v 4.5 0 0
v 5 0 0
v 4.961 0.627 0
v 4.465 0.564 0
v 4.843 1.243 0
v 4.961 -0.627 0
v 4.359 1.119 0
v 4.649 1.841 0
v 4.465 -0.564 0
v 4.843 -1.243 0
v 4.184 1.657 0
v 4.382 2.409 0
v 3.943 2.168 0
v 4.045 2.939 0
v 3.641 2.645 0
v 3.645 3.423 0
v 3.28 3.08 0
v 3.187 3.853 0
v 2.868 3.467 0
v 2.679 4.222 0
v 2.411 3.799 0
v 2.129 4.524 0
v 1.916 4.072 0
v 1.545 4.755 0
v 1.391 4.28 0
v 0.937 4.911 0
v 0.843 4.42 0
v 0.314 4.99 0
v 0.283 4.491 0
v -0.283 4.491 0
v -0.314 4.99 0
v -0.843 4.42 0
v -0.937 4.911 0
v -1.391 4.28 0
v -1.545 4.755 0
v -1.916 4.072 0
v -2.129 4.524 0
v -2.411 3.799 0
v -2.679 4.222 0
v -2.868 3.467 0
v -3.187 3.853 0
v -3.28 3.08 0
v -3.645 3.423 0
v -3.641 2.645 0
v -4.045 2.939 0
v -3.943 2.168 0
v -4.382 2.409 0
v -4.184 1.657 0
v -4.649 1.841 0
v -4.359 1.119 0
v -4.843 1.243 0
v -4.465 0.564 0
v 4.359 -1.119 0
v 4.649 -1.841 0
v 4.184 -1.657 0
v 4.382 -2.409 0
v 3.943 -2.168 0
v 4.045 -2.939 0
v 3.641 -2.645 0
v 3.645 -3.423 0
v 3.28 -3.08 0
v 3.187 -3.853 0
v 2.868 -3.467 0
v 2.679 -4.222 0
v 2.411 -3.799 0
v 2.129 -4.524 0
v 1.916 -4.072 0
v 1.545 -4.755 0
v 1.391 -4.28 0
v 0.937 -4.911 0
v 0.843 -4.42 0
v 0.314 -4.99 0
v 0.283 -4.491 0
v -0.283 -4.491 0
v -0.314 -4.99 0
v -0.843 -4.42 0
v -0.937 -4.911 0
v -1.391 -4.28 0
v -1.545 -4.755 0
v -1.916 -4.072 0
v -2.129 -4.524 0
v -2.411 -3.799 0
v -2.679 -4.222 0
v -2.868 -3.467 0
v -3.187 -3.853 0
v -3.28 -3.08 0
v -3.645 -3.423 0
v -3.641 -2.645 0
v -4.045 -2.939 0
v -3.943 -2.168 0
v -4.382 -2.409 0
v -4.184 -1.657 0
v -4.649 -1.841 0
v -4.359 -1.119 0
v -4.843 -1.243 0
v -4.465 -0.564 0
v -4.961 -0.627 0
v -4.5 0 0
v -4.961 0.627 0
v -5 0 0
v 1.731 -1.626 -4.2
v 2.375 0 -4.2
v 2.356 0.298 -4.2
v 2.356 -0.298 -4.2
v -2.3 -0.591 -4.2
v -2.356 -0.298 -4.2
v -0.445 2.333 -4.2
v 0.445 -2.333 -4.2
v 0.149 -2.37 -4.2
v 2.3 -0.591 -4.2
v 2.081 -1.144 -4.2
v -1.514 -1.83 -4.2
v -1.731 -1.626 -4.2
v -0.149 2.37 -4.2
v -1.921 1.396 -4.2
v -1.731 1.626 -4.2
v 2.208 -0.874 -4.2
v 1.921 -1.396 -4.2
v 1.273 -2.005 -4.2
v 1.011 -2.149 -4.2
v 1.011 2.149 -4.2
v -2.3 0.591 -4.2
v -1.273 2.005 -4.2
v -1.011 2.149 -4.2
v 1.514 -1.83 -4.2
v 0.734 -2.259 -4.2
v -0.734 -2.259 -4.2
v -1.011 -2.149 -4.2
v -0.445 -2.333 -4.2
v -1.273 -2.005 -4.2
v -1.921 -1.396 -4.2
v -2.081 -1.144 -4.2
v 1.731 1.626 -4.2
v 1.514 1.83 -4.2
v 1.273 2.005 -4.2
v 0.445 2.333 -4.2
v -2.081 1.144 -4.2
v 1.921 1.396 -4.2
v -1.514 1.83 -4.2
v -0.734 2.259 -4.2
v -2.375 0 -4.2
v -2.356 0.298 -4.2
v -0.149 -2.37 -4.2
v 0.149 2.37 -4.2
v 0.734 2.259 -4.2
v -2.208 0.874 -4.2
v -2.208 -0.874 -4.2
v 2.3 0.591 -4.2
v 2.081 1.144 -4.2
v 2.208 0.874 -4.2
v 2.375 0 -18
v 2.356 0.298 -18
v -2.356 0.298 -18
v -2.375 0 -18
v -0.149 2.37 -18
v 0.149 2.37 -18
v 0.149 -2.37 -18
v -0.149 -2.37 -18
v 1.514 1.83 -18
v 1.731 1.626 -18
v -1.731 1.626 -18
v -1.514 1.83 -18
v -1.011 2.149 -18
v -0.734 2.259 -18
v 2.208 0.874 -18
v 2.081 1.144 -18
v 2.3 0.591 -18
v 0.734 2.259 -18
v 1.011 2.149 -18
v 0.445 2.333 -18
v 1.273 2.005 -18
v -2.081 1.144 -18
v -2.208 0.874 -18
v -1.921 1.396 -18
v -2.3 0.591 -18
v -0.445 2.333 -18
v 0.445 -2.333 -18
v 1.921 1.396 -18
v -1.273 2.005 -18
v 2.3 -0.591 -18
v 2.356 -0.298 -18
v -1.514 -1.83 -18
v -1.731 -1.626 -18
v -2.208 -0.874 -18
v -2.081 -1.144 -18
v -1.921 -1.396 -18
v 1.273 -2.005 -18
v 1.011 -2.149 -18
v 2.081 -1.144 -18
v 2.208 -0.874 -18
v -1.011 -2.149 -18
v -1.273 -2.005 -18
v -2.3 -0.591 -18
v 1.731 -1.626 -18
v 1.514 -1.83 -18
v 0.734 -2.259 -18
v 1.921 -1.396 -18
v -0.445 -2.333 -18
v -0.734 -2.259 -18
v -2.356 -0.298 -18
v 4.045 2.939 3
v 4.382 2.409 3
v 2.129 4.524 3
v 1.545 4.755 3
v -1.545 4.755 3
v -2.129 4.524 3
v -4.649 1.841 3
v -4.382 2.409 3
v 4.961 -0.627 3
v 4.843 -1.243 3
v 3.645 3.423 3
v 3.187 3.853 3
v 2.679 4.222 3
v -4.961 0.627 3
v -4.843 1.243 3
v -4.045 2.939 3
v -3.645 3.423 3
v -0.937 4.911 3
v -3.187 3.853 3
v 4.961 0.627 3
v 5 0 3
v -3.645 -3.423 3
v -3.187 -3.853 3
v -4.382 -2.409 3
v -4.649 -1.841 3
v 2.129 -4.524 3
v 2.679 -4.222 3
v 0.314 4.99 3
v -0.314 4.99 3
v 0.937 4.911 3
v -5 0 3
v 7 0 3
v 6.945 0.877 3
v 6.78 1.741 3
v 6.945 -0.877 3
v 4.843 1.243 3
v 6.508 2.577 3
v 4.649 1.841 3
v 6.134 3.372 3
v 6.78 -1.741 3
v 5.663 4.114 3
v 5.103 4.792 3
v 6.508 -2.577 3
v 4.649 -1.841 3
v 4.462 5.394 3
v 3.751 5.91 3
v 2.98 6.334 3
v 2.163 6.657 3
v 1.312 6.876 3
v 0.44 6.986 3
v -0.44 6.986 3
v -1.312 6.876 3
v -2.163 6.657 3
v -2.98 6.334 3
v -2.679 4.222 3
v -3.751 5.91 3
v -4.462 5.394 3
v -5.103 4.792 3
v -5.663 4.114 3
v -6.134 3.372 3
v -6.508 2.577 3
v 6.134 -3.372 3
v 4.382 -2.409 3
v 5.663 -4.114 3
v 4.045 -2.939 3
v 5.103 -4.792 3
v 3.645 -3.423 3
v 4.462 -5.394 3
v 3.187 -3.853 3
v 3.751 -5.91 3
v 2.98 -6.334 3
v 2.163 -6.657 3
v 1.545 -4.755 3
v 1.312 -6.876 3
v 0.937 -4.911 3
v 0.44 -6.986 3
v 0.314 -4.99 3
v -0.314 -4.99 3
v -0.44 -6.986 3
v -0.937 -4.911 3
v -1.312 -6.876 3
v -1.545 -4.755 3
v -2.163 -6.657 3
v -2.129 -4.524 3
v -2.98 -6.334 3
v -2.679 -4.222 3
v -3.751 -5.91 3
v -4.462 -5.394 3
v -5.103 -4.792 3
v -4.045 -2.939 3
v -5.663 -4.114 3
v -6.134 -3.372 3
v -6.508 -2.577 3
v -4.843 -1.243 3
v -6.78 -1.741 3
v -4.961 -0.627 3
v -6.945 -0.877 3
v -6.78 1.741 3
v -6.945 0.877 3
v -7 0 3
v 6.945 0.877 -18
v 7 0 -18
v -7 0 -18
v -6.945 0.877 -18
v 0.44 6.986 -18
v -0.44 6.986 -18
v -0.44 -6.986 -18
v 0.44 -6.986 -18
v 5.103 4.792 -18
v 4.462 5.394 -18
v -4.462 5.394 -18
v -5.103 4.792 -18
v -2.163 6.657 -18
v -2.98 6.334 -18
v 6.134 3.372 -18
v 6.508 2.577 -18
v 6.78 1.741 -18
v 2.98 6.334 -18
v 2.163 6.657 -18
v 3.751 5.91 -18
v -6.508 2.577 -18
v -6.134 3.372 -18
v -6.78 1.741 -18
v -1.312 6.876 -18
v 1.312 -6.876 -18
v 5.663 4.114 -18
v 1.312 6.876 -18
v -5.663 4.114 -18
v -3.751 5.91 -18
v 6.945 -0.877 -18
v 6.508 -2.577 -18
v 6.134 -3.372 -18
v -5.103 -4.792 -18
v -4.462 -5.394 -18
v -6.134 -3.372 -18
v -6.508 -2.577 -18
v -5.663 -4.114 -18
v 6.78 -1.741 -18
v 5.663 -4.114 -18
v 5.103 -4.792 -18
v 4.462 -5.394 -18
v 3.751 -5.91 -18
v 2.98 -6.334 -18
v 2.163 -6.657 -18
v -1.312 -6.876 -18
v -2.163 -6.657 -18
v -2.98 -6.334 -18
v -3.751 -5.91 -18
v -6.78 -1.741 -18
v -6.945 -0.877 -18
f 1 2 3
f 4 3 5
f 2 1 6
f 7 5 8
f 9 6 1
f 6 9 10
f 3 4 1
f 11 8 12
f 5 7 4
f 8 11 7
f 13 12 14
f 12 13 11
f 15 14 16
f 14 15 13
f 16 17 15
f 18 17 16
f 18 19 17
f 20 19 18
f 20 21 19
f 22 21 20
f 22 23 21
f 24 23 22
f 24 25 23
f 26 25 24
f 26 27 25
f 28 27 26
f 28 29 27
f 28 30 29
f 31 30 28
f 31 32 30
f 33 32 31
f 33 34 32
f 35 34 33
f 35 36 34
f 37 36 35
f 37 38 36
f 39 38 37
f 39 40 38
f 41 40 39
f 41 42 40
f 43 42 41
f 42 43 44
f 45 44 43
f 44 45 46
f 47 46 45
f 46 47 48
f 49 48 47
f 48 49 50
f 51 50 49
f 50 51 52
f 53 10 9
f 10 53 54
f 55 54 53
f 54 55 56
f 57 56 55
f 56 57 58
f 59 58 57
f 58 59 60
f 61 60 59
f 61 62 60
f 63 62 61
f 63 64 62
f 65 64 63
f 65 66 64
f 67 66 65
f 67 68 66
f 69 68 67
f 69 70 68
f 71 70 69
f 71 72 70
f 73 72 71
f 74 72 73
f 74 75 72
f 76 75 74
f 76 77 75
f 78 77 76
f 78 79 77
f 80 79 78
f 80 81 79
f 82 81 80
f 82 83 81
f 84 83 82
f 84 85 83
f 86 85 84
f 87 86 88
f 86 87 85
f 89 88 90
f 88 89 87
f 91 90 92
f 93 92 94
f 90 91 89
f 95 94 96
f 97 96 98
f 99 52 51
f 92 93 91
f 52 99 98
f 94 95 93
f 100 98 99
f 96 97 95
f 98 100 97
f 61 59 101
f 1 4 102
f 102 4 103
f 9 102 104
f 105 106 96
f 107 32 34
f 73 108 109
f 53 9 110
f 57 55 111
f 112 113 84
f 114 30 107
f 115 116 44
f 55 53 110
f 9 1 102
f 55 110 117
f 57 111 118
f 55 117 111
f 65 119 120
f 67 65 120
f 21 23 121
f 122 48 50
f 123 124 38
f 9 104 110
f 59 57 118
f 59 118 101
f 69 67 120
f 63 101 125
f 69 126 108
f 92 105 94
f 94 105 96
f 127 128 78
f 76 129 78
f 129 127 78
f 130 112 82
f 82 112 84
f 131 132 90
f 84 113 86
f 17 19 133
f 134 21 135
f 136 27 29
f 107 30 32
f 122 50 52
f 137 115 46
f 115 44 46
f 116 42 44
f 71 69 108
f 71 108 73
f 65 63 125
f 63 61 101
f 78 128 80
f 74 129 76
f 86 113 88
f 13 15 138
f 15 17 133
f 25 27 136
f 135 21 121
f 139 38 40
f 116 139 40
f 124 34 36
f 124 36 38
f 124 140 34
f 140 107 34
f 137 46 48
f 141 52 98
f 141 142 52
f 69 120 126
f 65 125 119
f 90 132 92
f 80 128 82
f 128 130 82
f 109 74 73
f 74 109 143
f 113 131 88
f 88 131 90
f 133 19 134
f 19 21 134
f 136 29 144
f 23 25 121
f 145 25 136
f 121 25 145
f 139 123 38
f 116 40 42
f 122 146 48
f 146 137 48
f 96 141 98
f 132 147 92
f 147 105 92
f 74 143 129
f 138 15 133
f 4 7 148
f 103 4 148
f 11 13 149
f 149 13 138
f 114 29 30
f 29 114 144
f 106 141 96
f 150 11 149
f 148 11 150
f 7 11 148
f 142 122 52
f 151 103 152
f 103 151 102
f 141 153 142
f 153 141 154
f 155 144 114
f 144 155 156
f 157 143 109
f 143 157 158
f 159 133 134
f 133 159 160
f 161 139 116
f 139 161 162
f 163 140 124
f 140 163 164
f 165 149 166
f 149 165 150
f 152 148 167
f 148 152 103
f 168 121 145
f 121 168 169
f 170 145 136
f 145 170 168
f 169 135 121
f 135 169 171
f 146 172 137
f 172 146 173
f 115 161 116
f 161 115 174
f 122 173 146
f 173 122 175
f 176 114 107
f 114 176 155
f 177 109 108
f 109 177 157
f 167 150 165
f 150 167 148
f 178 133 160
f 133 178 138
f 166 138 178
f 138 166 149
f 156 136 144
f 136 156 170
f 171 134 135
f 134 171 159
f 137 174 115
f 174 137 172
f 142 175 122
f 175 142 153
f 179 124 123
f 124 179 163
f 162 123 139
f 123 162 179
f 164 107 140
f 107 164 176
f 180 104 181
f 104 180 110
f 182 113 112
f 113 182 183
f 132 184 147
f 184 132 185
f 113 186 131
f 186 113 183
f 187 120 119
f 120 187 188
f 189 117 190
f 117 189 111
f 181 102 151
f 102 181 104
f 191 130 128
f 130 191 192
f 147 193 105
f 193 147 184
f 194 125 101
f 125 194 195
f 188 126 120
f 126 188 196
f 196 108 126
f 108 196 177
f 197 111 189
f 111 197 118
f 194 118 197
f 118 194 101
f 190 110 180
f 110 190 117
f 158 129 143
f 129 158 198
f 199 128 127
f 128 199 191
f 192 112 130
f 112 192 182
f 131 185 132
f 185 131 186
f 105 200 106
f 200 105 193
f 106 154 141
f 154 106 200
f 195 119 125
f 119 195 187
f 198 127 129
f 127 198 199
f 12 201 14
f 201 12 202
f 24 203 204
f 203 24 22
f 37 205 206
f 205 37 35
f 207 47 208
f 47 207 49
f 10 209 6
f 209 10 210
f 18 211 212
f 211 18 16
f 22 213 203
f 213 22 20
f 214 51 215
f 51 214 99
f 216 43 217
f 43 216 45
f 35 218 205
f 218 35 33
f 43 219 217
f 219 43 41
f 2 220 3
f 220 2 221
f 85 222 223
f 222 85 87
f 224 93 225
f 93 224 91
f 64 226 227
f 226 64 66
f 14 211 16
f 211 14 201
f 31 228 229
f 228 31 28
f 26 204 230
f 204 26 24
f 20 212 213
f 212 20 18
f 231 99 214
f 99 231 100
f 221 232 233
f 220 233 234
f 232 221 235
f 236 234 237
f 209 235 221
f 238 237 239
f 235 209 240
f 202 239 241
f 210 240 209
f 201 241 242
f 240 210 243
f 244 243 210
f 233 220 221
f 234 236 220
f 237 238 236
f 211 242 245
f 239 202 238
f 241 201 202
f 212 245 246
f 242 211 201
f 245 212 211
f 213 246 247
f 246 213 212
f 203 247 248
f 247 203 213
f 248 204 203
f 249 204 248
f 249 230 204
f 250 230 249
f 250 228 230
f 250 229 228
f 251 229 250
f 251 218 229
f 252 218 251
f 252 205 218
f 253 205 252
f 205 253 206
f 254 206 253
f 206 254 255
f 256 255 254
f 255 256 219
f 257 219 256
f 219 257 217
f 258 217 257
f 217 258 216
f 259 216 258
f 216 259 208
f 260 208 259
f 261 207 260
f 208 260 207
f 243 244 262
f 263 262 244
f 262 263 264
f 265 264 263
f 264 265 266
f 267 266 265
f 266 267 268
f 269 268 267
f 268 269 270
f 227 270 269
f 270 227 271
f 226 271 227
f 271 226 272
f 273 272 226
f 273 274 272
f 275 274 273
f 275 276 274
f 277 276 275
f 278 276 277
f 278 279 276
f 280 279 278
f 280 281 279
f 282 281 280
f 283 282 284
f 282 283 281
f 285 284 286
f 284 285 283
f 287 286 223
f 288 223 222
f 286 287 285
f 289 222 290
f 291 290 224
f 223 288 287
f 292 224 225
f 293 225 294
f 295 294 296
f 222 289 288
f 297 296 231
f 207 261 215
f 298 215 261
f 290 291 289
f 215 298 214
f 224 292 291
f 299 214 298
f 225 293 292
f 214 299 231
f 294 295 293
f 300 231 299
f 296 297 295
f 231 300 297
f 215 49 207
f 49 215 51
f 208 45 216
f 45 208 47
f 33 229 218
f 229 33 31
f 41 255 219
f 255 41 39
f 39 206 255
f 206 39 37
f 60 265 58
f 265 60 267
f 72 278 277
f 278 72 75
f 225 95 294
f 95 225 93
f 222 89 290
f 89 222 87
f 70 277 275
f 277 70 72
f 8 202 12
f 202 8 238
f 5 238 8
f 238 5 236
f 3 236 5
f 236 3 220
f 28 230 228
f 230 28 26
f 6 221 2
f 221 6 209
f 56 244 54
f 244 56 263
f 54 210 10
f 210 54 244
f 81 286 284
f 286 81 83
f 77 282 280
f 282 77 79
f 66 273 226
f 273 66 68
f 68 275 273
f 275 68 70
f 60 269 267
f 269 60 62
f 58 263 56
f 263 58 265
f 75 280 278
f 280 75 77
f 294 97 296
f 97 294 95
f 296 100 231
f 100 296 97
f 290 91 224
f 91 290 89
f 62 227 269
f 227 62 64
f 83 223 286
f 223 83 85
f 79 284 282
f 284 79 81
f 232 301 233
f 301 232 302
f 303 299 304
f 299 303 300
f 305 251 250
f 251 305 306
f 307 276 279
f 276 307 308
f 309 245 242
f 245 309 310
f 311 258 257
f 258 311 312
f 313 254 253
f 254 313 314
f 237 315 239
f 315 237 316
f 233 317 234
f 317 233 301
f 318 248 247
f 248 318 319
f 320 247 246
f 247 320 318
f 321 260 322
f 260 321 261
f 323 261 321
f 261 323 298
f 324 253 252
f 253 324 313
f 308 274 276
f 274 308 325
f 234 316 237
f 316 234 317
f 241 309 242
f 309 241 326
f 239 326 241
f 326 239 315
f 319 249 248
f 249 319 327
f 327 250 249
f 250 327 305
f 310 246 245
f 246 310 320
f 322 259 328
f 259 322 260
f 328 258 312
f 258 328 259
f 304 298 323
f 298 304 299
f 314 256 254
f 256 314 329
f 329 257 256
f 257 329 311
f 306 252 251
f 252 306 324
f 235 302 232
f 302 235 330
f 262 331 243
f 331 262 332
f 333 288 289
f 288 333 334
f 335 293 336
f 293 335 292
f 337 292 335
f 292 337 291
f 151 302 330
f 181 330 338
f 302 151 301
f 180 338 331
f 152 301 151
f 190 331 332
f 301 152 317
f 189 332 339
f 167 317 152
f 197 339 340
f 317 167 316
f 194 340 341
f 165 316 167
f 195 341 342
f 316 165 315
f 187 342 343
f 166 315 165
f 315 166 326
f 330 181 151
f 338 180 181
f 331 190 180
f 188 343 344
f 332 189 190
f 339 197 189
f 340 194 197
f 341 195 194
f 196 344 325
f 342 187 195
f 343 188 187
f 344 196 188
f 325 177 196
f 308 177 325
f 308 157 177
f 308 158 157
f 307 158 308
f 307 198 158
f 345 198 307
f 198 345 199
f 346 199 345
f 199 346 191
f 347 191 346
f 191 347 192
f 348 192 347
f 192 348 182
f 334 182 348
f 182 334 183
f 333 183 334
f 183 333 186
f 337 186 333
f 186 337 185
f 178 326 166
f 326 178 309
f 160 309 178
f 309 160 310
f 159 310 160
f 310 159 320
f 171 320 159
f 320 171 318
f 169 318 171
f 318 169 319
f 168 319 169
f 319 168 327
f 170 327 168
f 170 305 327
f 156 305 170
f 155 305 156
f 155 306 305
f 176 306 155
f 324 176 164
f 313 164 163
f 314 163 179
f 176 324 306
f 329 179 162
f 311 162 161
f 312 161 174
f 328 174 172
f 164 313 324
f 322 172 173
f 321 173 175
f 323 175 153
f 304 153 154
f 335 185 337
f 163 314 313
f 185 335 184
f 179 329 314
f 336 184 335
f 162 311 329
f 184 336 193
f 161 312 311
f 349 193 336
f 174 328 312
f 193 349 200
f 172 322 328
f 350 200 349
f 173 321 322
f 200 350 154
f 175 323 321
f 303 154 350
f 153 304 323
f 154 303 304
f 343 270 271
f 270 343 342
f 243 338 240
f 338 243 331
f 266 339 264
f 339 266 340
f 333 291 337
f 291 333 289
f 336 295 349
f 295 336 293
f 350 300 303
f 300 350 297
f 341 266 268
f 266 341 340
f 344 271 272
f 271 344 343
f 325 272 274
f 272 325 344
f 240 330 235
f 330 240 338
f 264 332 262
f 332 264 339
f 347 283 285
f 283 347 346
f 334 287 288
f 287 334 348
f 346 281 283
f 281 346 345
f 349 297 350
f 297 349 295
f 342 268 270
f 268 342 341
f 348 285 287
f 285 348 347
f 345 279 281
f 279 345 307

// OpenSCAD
$fn = 50;

difference() {
	union() {
		translate(v = [0, 0, -18.0]) {
			cylinder(h = 21, r = 7.0);
		}
	}
	union() {
		translate(v = [0, 0, 0]) {
			rotate(a = [0, 0, 0]) {
				difference() {
					union() {
						translate(v = [0, 0, -21.0]) {
							cylinder(h = 21, r = 2.25);
						}
						translate(v = [0, 0, -4.2]) {
							cylinder(h = 4.2, r1 = 2.375, r2 = 4.5);
						}
						translate(v = [0, 0, -21.0]) {
							cylinder(h = 21, r = 2.375);
						}
						translate(v = [0, 0, -21.0]) {
							cylinder(h = 21, r = 2.25);
						}
					}
					union();
				}
			}
		}
		#cylinder(h = 3, r = 5.0);
	}
}
